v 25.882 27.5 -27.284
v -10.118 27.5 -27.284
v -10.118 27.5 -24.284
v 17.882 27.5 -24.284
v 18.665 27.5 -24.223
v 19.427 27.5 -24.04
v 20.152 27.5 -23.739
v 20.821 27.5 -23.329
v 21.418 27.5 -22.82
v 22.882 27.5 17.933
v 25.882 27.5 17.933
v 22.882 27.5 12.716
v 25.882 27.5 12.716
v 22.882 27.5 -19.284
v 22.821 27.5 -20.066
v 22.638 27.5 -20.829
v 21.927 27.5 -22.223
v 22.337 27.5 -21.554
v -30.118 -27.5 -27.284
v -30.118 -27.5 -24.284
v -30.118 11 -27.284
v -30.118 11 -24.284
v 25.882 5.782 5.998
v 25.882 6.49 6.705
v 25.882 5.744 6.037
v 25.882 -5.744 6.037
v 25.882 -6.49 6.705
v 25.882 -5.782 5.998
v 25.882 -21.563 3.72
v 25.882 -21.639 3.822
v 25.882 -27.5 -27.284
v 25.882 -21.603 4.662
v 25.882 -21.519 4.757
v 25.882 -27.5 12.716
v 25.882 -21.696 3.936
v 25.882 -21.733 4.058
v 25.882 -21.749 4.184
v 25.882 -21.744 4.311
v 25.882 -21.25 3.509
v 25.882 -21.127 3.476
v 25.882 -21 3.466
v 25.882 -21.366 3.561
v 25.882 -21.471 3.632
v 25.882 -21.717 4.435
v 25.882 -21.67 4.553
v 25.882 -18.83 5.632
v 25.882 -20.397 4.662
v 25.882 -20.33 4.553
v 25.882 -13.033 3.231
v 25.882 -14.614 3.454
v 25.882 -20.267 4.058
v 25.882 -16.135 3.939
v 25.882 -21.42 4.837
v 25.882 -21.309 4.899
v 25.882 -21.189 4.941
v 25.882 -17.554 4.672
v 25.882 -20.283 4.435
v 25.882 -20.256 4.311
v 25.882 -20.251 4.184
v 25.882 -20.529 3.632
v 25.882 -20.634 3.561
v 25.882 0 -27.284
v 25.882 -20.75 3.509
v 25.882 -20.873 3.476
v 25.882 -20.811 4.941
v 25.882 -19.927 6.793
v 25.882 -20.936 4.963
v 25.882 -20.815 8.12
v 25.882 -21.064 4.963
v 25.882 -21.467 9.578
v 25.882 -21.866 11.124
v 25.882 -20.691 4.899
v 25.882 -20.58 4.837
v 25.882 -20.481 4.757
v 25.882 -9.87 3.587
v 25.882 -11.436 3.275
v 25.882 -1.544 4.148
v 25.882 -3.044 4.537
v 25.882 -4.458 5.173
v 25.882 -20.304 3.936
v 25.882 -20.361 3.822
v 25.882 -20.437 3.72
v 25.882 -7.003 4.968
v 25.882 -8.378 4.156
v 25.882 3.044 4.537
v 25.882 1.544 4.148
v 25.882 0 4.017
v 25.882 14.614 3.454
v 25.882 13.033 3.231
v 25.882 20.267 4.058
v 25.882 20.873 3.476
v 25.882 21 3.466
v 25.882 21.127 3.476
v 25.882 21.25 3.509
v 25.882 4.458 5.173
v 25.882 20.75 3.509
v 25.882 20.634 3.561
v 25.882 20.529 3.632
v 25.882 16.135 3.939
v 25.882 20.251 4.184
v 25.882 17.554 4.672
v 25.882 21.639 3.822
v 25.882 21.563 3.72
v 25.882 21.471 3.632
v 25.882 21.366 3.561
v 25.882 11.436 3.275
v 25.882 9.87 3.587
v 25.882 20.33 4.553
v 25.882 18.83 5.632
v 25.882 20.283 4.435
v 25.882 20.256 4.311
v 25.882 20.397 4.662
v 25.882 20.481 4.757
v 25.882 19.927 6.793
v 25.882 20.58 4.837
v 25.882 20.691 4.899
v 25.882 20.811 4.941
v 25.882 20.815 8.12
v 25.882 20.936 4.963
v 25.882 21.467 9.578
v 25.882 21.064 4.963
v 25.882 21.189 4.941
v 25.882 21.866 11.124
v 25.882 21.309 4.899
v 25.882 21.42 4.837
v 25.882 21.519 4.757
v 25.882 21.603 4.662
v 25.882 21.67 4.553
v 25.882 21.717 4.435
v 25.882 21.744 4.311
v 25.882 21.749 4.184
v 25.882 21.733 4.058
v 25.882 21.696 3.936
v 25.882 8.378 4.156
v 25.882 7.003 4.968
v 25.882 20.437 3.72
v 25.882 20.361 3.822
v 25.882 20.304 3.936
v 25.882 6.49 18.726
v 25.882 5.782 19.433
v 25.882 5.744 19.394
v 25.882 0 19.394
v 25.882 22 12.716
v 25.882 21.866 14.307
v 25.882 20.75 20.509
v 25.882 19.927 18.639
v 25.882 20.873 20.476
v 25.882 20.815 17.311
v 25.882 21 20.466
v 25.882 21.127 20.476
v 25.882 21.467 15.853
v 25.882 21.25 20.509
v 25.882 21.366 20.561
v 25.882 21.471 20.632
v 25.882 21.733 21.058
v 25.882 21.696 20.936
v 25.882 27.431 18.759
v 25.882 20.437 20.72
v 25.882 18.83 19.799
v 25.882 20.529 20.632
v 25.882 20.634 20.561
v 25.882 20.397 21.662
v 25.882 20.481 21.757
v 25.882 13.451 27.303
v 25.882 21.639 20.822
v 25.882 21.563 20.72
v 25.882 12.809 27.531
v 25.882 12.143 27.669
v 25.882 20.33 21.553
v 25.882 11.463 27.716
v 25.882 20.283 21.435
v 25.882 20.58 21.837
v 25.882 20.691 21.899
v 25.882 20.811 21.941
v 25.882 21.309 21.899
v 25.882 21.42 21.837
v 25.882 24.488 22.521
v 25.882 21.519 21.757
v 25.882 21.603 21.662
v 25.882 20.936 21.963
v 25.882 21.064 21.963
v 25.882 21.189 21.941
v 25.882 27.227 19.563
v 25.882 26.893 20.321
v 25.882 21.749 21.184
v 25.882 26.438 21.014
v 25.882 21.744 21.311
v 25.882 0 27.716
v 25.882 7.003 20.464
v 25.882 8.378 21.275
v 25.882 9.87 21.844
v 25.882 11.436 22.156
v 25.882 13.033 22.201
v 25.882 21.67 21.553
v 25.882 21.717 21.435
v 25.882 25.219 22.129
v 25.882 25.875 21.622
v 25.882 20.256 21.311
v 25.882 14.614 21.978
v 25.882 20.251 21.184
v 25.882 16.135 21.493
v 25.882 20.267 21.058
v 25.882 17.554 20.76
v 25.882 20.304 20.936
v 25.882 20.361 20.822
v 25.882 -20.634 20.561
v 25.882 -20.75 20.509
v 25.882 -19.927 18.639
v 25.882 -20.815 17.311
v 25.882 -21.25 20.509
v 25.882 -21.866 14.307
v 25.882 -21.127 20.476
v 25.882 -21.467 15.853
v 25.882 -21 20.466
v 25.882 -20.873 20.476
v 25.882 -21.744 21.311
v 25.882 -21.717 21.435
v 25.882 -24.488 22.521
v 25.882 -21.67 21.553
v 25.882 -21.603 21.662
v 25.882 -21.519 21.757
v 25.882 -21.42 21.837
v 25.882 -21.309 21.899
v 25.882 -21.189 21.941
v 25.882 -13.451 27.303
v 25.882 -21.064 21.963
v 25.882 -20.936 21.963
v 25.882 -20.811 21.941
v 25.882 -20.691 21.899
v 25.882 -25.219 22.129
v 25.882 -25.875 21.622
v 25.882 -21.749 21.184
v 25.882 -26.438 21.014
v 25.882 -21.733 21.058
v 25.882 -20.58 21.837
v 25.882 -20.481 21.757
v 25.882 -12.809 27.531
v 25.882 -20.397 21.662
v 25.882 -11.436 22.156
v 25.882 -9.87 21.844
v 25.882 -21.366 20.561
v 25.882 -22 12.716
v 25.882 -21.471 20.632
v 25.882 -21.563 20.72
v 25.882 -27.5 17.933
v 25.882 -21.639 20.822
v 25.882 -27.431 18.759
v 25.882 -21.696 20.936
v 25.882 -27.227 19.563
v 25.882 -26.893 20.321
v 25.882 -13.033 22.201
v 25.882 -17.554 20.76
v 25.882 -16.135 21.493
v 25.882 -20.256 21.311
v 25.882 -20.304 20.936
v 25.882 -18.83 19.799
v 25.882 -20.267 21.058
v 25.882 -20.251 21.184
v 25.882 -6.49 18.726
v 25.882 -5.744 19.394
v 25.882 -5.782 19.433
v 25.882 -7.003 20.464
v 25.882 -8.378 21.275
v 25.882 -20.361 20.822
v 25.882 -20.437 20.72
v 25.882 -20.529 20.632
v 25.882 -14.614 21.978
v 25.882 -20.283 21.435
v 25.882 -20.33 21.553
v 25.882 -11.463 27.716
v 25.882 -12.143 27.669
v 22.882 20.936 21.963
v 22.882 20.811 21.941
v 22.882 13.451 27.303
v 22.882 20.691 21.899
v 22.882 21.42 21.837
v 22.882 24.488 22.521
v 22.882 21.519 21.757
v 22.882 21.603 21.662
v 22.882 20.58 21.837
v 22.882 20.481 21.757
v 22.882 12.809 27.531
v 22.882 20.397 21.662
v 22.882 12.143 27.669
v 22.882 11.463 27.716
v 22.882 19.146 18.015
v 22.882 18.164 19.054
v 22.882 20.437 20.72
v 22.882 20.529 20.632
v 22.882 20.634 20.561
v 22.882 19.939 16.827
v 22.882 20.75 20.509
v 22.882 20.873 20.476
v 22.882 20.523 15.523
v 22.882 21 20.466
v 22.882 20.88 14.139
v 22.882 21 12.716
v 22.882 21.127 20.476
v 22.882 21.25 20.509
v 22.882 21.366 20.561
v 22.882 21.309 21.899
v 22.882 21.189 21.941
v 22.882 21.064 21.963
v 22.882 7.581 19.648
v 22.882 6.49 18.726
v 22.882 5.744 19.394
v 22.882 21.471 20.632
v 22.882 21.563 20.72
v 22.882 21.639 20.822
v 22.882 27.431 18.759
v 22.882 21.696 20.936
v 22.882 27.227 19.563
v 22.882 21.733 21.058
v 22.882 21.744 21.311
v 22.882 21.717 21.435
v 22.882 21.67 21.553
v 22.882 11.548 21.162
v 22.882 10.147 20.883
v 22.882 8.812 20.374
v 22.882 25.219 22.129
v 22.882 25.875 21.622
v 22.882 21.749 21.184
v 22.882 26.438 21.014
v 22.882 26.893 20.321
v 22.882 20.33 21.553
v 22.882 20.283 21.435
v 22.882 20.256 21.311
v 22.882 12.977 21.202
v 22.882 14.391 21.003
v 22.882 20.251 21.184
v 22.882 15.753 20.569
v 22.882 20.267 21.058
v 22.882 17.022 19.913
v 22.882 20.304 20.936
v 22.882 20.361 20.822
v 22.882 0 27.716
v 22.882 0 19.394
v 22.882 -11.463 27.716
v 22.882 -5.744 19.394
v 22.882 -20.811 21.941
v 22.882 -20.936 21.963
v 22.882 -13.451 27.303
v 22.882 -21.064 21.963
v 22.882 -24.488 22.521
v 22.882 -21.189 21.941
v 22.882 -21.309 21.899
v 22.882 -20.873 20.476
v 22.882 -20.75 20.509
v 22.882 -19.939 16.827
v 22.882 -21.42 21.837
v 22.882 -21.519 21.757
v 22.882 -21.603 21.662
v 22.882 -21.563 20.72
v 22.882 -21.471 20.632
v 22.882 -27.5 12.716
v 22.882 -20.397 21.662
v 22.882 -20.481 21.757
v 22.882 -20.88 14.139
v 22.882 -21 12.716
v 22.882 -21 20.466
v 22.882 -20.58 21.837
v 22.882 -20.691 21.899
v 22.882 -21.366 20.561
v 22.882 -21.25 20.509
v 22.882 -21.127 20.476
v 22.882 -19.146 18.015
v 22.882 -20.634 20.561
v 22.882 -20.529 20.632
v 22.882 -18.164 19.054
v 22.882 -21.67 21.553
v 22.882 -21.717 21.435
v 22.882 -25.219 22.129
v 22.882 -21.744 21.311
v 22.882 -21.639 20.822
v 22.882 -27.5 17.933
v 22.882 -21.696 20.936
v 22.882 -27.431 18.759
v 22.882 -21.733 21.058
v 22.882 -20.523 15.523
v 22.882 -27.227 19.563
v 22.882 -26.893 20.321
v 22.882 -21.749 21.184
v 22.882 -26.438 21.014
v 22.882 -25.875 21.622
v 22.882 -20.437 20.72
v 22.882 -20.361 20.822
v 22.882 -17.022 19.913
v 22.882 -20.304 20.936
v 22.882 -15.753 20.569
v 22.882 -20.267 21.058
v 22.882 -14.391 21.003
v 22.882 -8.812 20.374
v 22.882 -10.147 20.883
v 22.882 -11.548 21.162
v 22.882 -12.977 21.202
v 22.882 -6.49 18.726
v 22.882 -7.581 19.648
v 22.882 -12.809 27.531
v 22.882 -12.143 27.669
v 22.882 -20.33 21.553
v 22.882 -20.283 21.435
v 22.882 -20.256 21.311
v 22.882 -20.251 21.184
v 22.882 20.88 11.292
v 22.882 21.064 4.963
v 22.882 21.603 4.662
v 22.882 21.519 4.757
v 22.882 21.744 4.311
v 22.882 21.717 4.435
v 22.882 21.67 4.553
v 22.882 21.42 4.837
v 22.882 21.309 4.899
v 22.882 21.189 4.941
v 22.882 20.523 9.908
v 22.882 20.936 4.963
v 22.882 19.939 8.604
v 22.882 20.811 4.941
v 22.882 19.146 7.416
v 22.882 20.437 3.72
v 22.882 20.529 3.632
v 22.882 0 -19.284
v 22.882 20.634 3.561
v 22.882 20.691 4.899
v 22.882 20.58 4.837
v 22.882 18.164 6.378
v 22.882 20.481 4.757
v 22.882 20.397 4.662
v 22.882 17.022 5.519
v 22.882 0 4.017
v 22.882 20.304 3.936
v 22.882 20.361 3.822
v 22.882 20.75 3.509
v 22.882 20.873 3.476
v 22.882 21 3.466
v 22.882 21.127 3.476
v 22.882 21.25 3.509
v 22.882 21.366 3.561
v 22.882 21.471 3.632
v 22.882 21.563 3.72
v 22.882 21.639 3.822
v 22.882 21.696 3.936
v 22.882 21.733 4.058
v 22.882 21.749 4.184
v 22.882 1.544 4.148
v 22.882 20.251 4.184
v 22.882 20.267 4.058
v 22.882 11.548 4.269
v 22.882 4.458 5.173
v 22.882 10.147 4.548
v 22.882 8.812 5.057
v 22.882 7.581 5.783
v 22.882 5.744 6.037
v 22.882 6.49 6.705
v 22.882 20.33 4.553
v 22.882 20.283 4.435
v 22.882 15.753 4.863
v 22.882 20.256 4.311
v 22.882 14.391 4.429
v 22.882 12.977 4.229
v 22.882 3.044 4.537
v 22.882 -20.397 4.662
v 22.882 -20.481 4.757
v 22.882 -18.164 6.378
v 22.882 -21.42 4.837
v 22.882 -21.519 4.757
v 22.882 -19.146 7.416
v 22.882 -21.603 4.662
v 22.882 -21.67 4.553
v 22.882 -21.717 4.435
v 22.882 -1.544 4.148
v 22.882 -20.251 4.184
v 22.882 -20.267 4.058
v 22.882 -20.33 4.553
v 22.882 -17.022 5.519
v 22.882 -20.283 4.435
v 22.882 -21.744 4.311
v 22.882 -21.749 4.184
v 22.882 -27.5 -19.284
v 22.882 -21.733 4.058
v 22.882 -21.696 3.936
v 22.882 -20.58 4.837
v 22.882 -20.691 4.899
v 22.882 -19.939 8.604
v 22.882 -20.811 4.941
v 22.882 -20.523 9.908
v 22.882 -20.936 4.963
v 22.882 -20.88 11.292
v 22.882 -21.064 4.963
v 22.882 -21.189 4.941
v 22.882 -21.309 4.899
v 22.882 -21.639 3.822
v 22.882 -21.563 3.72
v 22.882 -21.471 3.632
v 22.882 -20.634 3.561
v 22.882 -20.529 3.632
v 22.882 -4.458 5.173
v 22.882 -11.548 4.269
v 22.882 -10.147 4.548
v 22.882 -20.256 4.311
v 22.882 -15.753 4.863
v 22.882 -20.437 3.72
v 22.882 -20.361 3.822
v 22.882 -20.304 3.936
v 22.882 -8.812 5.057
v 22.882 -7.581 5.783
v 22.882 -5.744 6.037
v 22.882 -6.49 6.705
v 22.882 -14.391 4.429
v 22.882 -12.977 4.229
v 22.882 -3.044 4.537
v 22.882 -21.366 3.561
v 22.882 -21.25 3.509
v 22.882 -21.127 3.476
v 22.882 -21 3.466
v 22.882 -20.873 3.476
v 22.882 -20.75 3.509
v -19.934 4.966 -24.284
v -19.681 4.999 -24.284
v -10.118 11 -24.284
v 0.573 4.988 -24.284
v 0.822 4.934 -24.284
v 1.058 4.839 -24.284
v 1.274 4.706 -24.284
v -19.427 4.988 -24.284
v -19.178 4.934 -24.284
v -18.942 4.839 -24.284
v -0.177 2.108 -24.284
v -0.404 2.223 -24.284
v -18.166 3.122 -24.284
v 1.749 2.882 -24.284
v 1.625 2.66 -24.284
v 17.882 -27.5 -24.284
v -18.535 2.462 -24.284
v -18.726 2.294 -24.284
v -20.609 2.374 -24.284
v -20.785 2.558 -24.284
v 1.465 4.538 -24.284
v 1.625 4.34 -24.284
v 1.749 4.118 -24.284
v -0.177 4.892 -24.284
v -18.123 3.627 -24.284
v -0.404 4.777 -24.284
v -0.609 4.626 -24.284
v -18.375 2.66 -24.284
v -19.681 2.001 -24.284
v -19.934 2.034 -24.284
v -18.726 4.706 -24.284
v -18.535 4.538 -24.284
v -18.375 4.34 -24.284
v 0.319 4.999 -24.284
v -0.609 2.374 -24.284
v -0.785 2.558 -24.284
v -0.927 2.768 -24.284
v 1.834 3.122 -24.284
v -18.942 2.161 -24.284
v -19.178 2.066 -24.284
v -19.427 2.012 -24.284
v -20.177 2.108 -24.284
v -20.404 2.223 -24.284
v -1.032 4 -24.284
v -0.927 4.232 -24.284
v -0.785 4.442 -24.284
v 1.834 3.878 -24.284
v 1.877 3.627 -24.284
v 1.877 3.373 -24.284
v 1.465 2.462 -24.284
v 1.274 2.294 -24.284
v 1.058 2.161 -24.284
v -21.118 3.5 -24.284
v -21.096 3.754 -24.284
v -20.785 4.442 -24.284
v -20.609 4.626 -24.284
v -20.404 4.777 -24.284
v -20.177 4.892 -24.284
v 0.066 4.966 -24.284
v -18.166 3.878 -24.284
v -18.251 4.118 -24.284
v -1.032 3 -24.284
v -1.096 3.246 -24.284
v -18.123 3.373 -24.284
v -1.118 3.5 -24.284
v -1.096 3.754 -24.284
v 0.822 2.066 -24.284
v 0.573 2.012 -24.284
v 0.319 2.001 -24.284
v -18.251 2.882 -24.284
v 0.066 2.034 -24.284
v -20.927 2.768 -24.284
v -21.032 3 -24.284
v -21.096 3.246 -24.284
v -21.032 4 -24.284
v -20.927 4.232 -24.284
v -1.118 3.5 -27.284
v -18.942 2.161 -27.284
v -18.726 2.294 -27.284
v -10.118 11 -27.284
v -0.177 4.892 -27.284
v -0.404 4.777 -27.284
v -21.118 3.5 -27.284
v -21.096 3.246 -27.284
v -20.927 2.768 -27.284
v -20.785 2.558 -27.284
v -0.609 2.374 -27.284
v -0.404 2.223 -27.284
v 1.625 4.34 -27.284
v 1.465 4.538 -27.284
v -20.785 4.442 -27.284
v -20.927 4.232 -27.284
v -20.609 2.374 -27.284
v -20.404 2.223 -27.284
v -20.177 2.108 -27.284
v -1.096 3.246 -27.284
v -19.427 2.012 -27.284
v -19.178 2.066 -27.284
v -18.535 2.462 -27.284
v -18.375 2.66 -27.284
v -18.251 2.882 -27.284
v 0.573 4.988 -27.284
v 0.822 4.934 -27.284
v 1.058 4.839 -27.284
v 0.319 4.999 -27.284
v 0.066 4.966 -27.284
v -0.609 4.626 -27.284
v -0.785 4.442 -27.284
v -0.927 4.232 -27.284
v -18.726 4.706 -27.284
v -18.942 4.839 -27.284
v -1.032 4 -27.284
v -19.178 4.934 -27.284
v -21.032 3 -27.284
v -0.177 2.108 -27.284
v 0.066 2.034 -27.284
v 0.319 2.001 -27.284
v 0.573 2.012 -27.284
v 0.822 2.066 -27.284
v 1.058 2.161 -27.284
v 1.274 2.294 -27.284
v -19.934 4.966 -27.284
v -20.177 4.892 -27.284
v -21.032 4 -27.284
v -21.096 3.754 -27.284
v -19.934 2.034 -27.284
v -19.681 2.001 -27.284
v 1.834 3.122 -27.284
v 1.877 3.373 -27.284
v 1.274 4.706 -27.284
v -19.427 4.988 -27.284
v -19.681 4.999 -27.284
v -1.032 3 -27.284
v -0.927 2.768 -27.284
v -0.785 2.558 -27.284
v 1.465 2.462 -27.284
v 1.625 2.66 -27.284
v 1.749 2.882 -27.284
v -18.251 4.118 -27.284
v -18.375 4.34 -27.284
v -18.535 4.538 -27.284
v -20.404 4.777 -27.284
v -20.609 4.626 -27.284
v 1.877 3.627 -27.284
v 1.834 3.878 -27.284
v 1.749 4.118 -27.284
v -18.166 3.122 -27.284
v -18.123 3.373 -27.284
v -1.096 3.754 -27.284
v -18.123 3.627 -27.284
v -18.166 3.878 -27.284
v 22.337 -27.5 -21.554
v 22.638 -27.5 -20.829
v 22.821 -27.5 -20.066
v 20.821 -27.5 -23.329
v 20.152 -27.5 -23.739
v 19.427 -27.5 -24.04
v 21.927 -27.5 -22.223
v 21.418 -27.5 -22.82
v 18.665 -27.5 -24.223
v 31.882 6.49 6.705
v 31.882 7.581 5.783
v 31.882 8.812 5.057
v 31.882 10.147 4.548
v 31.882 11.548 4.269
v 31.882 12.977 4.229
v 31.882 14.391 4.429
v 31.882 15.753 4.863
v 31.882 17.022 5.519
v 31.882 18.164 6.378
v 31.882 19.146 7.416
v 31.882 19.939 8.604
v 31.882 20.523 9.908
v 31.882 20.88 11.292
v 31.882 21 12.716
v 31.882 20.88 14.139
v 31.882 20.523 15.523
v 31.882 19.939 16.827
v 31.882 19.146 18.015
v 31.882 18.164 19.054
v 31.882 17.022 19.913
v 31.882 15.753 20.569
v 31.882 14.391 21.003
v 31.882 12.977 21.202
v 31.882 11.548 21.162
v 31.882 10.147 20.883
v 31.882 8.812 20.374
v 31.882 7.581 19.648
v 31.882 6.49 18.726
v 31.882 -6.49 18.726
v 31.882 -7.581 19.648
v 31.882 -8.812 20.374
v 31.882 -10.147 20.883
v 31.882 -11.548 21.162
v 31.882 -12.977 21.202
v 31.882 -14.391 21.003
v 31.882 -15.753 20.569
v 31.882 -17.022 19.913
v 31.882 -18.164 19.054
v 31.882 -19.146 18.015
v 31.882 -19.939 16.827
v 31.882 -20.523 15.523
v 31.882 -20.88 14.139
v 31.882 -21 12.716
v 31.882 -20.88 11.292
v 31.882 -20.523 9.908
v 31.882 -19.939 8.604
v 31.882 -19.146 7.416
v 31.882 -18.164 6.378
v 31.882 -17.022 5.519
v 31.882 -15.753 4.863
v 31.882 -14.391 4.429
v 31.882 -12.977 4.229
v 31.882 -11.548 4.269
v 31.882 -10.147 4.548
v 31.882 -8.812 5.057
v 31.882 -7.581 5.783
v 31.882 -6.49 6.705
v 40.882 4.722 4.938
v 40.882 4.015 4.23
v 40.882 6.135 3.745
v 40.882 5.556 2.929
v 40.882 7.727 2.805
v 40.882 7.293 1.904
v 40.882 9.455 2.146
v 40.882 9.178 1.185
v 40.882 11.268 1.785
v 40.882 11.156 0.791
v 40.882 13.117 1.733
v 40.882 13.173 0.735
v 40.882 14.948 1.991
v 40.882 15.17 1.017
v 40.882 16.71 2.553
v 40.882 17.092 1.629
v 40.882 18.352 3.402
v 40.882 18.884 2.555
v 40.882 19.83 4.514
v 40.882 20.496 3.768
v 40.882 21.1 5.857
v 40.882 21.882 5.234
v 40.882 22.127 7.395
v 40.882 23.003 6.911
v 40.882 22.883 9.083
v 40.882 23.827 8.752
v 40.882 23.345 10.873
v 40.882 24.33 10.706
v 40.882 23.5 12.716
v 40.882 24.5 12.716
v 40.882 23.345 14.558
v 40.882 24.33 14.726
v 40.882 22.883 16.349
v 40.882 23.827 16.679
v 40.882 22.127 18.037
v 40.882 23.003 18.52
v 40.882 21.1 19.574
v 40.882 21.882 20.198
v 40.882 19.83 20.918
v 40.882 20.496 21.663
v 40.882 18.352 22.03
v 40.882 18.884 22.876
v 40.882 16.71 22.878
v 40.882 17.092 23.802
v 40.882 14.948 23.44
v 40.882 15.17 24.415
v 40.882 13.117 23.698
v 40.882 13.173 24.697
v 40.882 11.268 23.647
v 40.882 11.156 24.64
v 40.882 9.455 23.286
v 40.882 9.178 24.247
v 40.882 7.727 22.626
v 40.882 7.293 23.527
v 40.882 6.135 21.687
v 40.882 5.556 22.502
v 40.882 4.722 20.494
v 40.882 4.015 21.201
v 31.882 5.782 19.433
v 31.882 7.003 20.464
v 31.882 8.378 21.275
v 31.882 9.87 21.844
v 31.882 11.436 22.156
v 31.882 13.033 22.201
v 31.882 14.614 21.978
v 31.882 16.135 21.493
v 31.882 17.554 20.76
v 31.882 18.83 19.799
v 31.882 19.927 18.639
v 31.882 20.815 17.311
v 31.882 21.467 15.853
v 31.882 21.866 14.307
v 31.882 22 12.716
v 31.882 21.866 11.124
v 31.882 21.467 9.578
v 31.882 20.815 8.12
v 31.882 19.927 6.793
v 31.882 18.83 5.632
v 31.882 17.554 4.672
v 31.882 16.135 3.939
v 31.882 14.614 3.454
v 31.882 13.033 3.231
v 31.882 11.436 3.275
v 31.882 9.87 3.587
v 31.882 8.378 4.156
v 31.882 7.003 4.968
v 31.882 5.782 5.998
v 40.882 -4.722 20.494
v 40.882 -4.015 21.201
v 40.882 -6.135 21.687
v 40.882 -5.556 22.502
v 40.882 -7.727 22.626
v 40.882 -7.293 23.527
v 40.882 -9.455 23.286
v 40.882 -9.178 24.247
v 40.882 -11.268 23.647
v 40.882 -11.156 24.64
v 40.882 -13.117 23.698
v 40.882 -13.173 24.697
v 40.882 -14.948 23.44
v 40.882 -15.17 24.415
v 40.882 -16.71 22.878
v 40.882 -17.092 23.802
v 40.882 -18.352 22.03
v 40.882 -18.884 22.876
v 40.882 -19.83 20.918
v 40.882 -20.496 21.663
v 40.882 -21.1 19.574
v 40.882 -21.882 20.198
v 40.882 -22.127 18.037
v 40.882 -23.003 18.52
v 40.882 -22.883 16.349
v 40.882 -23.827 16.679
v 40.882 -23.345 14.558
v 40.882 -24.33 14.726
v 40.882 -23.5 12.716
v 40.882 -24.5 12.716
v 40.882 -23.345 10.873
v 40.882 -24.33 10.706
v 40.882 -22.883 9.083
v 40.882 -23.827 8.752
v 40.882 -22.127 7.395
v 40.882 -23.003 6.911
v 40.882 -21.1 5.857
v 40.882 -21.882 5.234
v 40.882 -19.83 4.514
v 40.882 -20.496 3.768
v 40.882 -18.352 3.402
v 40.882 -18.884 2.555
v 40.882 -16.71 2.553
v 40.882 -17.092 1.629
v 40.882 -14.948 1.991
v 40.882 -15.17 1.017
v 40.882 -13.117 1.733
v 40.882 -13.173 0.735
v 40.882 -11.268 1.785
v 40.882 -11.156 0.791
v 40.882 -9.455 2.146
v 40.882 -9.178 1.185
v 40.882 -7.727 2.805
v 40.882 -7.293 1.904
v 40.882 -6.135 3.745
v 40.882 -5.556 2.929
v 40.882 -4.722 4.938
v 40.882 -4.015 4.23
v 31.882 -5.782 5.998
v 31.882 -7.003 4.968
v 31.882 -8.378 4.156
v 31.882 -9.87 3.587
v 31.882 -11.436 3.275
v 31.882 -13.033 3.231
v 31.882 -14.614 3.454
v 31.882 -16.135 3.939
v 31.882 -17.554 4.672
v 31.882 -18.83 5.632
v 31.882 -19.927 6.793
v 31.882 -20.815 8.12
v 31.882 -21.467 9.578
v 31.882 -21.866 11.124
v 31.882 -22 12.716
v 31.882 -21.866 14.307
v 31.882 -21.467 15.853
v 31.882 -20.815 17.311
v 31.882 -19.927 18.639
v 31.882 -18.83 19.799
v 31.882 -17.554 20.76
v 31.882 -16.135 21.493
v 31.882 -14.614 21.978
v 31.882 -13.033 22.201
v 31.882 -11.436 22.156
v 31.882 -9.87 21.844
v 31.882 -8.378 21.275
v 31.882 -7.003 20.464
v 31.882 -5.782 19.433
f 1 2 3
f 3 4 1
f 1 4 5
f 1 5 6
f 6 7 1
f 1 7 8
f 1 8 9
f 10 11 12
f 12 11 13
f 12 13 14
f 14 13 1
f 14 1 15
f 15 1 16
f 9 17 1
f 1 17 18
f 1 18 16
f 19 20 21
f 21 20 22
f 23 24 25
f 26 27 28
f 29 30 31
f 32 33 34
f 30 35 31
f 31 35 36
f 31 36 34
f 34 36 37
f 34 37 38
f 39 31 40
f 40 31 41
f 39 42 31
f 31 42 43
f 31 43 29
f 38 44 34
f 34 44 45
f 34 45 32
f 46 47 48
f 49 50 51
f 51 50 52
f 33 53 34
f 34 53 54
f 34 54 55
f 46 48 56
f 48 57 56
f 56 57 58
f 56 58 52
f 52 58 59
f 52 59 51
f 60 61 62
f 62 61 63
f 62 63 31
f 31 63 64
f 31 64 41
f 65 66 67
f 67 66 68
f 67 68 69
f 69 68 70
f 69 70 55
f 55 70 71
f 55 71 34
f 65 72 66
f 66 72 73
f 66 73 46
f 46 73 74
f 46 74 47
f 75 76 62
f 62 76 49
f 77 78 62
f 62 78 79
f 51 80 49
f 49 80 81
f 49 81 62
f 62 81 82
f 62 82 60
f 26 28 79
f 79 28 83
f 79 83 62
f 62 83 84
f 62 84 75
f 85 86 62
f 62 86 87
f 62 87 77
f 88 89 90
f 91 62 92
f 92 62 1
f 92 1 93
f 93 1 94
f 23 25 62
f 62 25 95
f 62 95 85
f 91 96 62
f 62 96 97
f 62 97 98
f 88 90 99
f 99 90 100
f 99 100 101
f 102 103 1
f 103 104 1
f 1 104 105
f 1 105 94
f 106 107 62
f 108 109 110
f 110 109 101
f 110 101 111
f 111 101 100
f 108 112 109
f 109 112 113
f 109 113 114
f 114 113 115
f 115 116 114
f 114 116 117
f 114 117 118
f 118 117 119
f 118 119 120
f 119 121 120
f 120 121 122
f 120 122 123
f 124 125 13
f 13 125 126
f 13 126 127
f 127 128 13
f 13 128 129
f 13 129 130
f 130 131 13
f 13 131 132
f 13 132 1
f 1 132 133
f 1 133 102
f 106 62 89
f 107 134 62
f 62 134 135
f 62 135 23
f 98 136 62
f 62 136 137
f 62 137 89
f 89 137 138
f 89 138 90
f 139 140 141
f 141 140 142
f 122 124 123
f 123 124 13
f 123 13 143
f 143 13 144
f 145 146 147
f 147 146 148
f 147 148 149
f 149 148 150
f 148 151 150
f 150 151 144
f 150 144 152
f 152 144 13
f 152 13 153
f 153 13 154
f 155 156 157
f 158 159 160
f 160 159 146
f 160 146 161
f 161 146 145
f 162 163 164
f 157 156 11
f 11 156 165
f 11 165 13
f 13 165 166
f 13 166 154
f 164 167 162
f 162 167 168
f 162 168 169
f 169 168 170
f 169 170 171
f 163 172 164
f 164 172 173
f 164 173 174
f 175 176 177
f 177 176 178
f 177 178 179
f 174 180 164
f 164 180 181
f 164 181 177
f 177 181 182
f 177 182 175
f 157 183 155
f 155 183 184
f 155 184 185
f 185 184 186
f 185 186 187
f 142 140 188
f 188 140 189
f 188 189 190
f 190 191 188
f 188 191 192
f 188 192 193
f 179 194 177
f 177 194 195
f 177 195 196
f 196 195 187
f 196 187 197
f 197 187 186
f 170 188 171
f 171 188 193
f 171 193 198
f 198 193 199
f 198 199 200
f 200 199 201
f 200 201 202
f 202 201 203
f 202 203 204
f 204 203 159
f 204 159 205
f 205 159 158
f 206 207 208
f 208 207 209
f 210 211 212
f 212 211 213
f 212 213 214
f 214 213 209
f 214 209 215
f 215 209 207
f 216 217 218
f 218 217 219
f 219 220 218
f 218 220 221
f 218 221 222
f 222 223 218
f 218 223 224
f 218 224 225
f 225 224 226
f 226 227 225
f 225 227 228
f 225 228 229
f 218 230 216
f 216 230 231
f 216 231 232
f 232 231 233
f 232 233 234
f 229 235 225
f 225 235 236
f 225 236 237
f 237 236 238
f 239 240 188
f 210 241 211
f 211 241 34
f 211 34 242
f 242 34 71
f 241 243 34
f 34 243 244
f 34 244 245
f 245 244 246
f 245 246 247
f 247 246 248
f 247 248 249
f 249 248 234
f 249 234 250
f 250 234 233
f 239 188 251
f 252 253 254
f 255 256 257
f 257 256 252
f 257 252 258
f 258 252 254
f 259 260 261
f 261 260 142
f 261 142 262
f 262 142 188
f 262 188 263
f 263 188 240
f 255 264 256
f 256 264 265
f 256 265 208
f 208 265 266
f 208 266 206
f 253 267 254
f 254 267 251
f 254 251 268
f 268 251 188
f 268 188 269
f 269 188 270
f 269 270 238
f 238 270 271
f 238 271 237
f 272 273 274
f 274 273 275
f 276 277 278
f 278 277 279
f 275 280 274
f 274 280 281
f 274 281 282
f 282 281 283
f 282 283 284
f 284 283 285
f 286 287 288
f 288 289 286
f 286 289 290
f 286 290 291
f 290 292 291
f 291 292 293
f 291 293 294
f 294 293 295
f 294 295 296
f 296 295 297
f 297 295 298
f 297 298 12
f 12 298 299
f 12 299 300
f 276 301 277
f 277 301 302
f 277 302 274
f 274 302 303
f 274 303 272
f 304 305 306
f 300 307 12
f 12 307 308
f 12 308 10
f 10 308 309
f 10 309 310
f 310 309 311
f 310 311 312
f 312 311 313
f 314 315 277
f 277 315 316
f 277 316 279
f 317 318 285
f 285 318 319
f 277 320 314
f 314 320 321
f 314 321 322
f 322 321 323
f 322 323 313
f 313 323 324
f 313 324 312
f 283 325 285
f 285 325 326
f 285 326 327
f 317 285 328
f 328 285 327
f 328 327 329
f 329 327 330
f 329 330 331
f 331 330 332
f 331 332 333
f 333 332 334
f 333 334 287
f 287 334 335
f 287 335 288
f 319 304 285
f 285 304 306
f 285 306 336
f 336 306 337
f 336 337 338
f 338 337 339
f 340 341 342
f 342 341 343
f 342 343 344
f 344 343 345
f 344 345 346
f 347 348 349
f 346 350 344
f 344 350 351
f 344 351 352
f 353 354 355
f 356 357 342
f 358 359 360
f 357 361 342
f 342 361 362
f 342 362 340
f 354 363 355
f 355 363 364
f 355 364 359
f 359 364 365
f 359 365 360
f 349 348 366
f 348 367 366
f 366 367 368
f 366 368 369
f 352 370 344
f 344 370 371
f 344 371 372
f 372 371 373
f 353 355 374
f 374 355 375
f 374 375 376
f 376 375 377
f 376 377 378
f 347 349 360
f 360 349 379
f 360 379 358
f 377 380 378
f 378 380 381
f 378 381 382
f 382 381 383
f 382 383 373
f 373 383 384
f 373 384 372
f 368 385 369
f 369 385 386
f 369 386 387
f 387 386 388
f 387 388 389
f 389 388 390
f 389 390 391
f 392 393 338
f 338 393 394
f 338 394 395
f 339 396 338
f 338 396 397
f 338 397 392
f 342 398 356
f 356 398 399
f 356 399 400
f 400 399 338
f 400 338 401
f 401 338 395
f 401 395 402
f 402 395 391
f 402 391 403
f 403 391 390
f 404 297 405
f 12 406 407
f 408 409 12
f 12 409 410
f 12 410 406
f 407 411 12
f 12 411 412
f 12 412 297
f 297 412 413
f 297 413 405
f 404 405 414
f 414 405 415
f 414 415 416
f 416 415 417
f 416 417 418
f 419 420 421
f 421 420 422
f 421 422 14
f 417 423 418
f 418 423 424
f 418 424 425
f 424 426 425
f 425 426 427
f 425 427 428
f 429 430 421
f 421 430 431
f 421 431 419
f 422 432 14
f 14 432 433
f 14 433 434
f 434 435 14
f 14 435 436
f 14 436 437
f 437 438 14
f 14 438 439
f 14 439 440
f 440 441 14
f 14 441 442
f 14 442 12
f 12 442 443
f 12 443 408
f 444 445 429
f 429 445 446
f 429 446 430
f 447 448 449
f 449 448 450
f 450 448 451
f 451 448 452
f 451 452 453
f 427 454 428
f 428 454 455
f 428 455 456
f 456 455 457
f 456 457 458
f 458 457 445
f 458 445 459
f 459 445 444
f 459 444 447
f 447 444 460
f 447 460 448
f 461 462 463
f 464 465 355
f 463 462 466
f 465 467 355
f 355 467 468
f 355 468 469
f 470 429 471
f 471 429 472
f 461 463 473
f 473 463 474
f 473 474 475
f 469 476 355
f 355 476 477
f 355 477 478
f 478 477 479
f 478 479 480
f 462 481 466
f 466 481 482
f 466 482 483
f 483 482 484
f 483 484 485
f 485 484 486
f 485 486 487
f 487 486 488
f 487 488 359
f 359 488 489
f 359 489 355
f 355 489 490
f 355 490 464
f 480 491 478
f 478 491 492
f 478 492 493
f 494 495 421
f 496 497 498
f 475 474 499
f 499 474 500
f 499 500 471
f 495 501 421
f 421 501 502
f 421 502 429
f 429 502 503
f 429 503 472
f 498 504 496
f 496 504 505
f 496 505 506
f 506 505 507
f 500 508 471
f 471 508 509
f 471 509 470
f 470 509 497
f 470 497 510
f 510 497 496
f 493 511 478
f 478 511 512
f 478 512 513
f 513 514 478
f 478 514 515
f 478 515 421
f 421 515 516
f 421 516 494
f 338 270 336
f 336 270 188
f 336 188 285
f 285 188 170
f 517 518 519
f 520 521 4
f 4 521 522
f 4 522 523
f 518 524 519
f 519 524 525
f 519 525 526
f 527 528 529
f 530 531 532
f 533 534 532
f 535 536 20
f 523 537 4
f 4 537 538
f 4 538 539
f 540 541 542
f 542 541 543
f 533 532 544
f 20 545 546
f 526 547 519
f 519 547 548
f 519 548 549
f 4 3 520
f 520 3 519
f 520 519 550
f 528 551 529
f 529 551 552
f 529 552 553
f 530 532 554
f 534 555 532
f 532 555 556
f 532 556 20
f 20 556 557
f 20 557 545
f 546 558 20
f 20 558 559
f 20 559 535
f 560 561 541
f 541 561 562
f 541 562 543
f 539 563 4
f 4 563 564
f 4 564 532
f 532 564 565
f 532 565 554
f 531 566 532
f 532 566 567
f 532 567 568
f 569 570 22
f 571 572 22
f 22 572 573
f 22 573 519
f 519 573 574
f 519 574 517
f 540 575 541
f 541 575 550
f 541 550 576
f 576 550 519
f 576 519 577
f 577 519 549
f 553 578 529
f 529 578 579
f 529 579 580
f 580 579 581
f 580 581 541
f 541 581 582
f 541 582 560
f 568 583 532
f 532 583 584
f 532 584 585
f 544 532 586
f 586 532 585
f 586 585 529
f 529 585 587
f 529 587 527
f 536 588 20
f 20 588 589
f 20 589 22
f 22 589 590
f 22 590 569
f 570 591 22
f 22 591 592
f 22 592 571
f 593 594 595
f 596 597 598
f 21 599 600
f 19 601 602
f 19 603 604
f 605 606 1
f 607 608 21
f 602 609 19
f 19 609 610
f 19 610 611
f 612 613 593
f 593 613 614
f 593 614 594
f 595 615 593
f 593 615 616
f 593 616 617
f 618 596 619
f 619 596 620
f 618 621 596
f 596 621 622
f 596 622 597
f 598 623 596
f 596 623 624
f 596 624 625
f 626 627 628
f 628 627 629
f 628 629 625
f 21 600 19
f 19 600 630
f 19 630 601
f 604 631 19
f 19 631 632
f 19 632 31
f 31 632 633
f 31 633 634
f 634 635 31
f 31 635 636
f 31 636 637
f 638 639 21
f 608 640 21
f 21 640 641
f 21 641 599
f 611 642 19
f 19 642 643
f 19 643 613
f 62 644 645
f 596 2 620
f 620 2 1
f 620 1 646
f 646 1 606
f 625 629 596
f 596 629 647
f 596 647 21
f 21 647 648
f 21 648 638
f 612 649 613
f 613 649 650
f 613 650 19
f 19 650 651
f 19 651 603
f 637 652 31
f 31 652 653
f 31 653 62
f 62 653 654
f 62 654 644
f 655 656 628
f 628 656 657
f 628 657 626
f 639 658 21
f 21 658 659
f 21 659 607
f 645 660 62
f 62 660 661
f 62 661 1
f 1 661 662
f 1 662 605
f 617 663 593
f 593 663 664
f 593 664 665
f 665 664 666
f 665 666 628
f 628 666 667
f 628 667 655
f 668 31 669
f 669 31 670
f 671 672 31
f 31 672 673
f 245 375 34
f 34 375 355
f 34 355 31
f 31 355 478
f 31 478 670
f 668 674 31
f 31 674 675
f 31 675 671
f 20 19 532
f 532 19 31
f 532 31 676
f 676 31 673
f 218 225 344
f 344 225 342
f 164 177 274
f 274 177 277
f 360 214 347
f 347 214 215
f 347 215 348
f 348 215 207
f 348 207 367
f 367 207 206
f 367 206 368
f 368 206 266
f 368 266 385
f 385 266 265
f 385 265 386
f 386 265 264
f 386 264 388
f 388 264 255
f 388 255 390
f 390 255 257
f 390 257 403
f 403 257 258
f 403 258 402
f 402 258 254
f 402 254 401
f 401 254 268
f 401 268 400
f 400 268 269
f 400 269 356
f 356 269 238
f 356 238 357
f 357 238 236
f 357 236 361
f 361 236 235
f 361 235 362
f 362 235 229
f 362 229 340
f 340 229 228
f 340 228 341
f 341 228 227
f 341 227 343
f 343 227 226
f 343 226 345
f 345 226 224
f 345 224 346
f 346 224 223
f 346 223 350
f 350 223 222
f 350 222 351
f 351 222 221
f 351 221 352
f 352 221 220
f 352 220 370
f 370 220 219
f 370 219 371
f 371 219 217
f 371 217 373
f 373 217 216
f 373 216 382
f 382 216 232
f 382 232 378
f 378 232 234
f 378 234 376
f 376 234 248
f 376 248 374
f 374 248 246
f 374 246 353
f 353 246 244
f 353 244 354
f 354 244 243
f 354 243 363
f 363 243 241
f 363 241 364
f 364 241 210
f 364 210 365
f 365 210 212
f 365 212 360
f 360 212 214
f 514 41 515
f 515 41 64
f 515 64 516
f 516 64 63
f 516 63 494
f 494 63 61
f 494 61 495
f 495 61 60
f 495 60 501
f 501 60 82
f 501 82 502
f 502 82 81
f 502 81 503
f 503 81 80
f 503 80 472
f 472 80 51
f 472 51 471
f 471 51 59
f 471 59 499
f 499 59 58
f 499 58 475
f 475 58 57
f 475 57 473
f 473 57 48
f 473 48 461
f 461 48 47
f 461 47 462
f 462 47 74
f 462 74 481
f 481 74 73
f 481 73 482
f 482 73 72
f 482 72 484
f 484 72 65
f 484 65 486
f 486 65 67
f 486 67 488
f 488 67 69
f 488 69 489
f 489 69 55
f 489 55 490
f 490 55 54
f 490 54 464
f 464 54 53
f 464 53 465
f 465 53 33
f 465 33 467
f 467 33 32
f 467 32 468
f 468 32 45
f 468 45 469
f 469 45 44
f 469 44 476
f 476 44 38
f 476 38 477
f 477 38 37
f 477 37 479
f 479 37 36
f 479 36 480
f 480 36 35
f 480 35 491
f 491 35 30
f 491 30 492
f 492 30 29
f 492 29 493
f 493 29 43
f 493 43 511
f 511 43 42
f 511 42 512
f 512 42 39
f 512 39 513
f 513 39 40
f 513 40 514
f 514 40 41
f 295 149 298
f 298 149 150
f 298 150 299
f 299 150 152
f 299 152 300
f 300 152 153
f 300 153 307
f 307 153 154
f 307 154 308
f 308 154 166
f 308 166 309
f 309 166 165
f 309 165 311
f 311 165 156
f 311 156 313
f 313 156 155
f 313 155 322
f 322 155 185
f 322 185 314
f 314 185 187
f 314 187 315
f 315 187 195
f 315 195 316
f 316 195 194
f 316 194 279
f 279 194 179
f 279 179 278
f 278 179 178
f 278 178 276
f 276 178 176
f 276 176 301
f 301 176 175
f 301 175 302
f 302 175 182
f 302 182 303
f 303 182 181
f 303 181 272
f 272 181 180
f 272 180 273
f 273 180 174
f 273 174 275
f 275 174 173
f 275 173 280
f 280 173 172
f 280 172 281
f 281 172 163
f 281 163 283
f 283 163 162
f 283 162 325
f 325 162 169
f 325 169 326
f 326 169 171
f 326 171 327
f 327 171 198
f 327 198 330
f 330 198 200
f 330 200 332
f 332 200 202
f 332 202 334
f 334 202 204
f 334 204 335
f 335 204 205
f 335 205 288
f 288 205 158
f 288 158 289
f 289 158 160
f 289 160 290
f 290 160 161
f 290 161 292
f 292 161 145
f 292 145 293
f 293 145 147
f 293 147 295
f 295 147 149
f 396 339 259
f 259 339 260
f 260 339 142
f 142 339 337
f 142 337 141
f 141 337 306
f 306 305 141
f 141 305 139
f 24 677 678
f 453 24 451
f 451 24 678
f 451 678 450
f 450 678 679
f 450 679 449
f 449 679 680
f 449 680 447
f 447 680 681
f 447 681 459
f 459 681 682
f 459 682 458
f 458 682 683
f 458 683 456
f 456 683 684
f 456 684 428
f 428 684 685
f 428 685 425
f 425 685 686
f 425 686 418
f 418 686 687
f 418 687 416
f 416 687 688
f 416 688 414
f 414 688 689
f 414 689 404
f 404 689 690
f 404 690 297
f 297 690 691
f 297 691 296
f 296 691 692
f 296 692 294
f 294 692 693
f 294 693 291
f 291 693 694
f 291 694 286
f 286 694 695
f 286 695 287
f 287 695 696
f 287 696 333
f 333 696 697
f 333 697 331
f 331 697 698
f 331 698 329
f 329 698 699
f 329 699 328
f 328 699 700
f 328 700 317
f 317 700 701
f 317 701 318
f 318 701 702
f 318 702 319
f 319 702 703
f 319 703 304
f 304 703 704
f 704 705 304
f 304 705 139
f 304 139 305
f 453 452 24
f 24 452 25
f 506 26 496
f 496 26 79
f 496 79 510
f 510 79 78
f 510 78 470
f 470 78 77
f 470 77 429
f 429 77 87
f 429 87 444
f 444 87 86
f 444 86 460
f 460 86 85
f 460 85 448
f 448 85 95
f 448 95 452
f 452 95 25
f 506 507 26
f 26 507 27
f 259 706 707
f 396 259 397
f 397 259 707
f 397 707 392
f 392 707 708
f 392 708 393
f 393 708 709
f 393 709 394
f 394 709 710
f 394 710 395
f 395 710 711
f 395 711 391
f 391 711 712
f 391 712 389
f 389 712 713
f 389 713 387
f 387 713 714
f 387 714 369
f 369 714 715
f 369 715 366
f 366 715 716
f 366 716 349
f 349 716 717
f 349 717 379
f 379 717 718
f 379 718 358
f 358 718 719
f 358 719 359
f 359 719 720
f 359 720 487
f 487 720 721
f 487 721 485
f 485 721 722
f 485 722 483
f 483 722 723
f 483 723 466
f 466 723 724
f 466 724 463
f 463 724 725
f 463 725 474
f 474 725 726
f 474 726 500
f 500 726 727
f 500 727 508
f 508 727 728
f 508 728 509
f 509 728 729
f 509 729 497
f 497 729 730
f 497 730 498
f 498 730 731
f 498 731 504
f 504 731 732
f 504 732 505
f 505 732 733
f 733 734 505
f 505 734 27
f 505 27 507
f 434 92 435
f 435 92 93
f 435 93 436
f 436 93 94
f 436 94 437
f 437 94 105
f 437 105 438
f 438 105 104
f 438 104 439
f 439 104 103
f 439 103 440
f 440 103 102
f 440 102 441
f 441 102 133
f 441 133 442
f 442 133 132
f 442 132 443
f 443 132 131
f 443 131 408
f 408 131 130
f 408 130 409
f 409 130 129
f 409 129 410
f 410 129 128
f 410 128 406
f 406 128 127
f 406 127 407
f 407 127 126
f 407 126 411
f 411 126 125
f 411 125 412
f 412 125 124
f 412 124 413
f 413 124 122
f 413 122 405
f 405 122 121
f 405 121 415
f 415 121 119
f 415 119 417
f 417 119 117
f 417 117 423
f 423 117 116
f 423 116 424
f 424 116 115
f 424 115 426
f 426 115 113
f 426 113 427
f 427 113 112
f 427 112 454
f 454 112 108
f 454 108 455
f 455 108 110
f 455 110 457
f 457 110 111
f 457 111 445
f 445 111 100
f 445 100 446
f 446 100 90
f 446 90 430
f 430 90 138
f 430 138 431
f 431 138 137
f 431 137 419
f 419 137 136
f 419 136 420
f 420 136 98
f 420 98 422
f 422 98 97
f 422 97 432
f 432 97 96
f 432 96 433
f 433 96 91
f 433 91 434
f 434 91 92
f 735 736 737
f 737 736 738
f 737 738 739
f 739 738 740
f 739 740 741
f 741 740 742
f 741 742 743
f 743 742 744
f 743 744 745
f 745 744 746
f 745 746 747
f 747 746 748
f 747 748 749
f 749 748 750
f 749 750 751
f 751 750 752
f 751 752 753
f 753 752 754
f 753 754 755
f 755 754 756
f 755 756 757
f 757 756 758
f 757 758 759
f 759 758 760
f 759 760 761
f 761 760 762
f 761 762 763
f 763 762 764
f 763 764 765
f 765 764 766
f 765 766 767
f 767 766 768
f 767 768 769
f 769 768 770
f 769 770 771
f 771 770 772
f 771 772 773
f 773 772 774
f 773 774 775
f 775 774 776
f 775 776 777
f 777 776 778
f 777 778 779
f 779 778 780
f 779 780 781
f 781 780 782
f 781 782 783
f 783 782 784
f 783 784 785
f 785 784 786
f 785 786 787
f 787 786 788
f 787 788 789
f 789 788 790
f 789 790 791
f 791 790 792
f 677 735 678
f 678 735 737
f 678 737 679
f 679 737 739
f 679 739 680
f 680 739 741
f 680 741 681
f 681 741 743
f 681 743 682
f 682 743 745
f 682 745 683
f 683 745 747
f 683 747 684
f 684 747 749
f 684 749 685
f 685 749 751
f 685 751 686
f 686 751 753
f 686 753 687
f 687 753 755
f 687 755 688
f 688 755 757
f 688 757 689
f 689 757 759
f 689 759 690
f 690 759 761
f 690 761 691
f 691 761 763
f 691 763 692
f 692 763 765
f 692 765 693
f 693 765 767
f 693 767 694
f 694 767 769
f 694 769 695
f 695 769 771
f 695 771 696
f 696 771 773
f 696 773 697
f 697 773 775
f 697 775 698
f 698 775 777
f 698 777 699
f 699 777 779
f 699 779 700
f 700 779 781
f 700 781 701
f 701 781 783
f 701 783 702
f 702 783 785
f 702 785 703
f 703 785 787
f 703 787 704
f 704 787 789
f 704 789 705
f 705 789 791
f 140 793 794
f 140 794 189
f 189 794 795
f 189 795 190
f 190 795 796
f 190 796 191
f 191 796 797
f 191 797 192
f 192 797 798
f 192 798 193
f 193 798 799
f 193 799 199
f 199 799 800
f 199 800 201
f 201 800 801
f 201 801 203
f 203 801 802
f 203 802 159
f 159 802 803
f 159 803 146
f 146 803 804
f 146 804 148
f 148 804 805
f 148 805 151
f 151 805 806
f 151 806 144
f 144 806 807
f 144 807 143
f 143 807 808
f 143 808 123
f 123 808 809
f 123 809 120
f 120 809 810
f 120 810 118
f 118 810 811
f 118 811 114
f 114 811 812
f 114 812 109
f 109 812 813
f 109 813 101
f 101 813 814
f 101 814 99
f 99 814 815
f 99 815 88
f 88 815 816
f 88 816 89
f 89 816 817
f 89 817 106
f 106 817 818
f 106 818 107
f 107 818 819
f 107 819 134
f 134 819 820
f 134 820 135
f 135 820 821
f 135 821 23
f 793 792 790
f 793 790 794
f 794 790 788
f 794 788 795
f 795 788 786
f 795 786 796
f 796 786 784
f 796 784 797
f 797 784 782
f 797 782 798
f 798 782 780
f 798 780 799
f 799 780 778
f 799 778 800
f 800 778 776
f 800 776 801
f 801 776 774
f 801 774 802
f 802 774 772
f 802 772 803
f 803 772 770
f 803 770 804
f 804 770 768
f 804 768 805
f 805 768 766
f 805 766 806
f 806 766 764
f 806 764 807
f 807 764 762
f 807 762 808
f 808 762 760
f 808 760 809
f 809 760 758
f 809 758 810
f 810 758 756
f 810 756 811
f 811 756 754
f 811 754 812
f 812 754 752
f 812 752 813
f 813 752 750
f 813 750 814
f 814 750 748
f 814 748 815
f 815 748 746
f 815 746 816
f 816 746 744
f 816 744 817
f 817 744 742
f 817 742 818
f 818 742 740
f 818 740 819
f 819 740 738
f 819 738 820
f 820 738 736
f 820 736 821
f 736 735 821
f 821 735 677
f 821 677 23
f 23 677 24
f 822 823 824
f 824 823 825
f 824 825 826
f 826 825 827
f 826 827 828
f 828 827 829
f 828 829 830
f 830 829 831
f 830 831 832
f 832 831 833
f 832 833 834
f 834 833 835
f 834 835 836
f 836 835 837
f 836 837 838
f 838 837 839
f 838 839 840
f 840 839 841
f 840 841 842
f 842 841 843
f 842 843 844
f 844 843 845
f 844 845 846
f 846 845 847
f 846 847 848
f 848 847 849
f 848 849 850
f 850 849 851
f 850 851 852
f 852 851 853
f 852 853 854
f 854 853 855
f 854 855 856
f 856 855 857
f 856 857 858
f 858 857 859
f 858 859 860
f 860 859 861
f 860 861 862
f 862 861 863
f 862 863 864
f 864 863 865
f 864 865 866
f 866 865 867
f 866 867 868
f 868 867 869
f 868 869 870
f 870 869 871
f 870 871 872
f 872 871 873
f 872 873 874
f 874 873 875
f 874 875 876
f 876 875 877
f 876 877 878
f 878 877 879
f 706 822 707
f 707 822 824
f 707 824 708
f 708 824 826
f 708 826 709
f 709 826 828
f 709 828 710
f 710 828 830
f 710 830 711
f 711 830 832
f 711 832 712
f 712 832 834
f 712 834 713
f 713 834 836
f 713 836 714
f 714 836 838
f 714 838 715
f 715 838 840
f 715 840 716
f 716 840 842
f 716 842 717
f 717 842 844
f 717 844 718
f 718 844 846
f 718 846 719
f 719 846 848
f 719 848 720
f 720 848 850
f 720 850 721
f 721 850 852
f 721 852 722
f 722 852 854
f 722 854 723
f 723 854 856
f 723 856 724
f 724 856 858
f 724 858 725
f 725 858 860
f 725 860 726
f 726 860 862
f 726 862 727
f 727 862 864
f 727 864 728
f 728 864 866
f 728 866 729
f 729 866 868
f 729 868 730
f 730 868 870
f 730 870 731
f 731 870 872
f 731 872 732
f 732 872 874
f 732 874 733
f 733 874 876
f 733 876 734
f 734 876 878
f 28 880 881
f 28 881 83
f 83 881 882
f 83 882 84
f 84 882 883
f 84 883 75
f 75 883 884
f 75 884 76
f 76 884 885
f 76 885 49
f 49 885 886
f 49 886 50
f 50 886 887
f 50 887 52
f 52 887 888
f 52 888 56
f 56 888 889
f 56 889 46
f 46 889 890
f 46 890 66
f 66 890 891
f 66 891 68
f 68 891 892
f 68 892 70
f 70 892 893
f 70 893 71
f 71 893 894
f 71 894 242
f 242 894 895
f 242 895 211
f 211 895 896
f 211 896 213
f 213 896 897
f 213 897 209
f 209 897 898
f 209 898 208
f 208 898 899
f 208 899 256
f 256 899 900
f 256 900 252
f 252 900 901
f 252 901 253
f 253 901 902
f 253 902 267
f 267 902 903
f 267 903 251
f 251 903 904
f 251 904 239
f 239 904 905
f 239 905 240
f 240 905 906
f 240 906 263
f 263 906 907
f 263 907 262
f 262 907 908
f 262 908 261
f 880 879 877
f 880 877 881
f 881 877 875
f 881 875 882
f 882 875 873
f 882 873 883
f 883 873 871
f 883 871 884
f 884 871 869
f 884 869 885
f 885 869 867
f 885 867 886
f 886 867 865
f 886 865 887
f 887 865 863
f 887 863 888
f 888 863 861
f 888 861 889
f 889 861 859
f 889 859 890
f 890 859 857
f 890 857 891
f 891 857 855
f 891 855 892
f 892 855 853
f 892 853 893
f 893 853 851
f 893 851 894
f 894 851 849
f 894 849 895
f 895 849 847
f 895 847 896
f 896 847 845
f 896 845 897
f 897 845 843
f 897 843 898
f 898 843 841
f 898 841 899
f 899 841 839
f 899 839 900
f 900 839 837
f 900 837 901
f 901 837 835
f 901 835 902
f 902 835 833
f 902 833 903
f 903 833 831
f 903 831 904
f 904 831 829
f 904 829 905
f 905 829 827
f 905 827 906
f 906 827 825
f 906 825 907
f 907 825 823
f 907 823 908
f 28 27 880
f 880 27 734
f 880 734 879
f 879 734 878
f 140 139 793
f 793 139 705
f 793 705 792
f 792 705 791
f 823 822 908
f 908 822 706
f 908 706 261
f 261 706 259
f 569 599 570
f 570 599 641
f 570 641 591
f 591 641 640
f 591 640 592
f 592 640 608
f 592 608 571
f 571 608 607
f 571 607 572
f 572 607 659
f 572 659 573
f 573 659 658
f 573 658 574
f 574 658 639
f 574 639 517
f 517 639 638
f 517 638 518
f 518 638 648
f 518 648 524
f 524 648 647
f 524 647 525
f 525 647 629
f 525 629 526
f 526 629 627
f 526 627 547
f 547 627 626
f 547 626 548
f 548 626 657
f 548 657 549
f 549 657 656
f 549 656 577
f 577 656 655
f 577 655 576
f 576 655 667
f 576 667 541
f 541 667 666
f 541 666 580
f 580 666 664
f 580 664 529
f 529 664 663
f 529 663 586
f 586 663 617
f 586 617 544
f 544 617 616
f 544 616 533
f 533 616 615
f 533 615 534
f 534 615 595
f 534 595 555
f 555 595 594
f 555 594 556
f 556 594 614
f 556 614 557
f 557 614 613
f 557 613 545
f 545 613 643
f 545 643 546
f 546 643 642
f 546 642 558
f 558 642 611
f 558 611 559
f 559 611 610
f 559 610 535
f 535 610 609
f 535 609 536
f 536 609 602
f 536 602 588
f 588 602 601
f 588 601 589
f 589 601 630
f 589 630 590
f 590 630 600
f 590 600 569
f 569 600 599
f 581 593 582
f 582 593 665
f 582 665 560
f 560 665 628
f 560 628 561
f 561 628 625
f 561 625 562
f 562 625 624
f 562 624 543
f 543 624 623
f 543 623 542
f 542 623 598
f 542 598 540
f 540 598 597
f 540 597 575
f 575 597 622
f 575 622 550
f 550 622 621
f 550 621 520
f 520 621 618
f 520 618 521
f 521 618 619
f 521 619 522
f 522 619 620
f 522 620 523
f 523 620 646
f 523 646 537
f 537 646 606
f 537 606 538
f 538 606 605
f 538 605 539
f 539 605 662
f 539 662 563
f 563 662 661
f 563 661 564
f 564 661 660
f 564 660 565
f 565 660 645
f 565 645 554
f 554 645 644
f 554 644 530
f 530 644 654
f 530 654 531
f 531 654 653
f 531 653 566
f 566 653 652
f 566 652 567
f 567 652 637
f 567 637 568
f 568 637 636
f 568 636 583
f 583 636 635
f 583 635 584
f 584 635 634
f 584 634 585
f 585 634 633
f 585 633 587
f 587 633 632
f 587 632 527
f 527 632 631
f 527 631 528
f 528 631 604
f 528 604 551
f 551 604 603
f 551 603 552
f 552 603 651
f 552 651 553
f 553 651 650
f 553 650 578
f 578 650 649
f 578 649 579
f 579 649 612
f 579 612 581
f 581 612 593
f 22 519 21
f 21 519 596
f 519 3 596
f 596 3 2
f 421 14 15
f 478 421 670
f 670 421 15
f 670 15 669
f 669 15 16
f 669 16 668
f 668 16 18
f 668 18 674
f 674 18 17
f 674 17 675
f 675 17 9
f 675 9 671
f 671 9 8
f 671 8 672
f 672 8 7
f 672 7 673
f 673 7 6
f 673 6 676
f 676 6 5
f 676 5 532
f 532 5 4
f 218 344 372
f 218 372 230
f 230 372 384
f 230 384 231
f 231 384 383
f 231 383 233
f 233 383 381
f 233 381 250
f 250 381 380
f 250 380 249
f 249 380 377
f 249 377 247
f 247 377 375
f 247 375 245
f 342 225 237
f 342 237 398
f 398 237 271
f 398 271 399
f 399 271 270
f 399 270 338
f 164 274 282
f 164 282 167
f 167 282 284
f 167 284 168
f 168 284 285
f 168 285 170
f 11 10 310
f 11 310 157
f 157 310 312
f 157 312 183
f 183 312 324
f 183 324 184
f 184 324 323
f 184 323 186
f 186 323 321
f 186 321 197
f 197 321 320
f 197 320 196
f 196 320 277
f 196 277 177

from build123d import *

# Parameters (mm, degrees)
EXTRUDE_1_DEPTH       = 27.5
SKETCH_3_R            = 0.75
CUT_EXTRUDE_3_DEPTH   = 3
REVOLVE_1_ANGLE       = 135
MIRROR_3_COPY_1_ANGLE = 135
MIRROR_3_COPY_2_ANGLE = 135
SKETCH_2_W            = 20
SKETCH_2_H            = 16.5
SKETCH_2_R            = 1.5
CUT_EXTRUDE_4_DEPTH   = 3
FILLET_1_R            = 5
FILLET_2_R            = 5


with BuildPart() as part:
    # 草图1 → 凸台-拉伸1 (new, symmetric)
    with BuildSketch(Plane(origin=(0, 0, 0), x_dir=(1, 0, 0), z_dir=(0, 1, 0))):
        Polygon((-30.117647059, 27.284313725), (25.882352941, 27.284313725), (25.882352941, -27.715686275), (22.882352941, -27.715686275), (22.882352941, 24.284313725), (-30.117647059, 24.284313725), align=None)
    extrude(amount=EXTRUDE_1_DEPTH, both=True)

    # 草图3 → 切除-拉伸3 (cut)
    with BuildSketch(Plane(origin=(25.882352941, 0, 0), x_dir=(0, 0, -1), z_dir=(1, 0, 0))):
        with BuildLine():
            Line((-12.715686275, 12.5), (-6.705278634, 6.48959236))
            ThreePointArc((-6.705278634, 6.48959236), (-4.862710248, 9.247190825), (-4.215686275, 12.5))
            ThreePointArc((-4.215686275, 12.5), (-6.705278634, 18.51040764), (-12.715686275, 21))
            Line((-12.715686275, 21), (-12.715686275, 12.5))
        make_face()
        with BuildLine():
            ThreePointArc((-12.715686275, 4), (-9.462877099, 4.647023974), (-6.705278634, 6.48959236))
            Line((-6.705278634, 6.48959236), (-12.715686275, 12.5))
            Line((-12.715686275, 12.5), (-12.715686275, 4))
        make_face()
        with BuildLine():
            Line((-12.715686275, 12.5), (-18.726093915, 6.48959236))
            ThreePointArc((-18.726093915, 6.48959236), (-15.96849545, 4.647023974), (-12.715686275, 4))
            Line((-12.715686275, 4), (-12.715686275, 12.5))
        make_face()
        with BuildLine():
            ThreePointArc((-12.715686275, 21), (-20.568662301, 15.752809175), (-18.726093915, 6.48959236))
            Line((-18.726093915, 6.48959236), (-12.715686275, 12.5))
            Line((-12.715686275, 12.5), (-12.715686275, 21))
        make_face()
        with BuildLine():
            Line((-12.715686275, 3), (-12.715686275, 0))
            Line((-12.715686275, 0), (-4.017201465, 0))
            ThreePointArc((-4.017201465, 0), (-4.536839235, 3.044356098), (-6.036908978, 5.743970558))
            ThreePointArc((-6.036908978, 5.743970558), (-9.105442495, 3.712728532), (-12.715686275, 3))
        make_face()
        with BuildLine():
            Line((-4.017201465, 0), (-12.715686275, 0))
            Line((-12.715686275, 0), (-12.715686275, -3))
            ThreePointArc((-12.715686275, -3), (-9.105442495, -3.712728532), (-6.036908978, -5.743970558))
            ThreePointArc((-6.036908978, -5.743970558), (-4.536839235, -3.044356098), (-4.017201465, 0))
        make_face()
        with BuildLine():
            Line((-19.394463571, 5.743970558), (-19.394463571, 0))
            Line((-19.394463571, 0), (-12.715686275, 0))
            Line((-12.715686275, 0), (-12.715686275, 3))
            ThreePointArc((-12.715686275, 3), (-16.325930054, 3.712728532), (-19.394463571, 5.743970558))
        make_face()
        with BuildLine():
            Line((-12.715686275, 0), (-19.394463571, 0))
            Line((-19.394463571, 0), (-19.394463571, -5.743970558))
            ThreePointArc((-19.394463571, -5.743970558), (-16.325930054, -3.712728532), (-12.715686275, -3))
            Line((-12.715686275, -3), (-12.715686275, 0))
        make_face()
        with BuildLine():
            Line((-6.705278634, -6.48959236), (-12.715686275, -12.5))
            Line((-12.715686275, -12.5), (-12.715686275, -21))
            ThreePointArc((-12.715686275, -21), (-6.705278634, -18.51040764), (-4.215686275, -12.5))
            ThreePointArc((-4.215686275, -12.5), (-4.862710248, -9.247190825), (-6.705278634, -6.48959236))
        make_face()
        with BuildLine():
            Line((-12.715686275, -4), (-12.715686275, -12.5))
            Line((-12.715686275, -12.5), (-6.705278634, -6.48959236))
            ThreePointArc((-6.705278634, -6.48959236), (-9.462877099, -4.647023974), (-12.715686275, -4))
        make_face()
        with BuildLine():
            ThreePointArc((-12.715686275, -4), (-15.96849545, -4.647023974), (-18.726093915, -6.48959236))
            Line((-18.726093915, -6.48959236), (-12.715686275, -12.5))
            Line((-12.715686275, -12.5), (-12.715686275, -4))
        make_face()
        with BuildLine():
            Line((-12.715686275, -12.5), (-18.726093915, -6.48959236))
            ThreePointArc((-18.726093915, -6.48959236), (-20.568662301, -15.752809175), (-12.715686275, -21))
            Line((-12.715686275, -21), (-12.715686275, -12.5))
        make_face()
        with Locations((-21.215686275, -21)):
            Circle(SKETCH_3_R)
        with Locations((-4.215686275, -21)):
            Circle(SKETCH_3_R)
        with Locations((-21.215686275, 21)):
            Circle(SKETCH_3_R)
        with Locations((-4.215686275, 21)):
            Circle(SKETCH_3_R)
        with BuildLine():
            ThreePointArc((-12.715686275, -3), (-16.325930054, -3.712728532), (-19.394463571, -5.743970558))
            Line((-19.394463571, -5.743970558), (-18.726093915, -6.48959236))
            ThreePointArc((-18.726093915, -6.48959236), (-15.96849545, -4.647023974), (-12.715686275, -4))
            ThreePointArc((-12.715686275, -4), (-9.462877099, -4.647023974), (-6.705278634, -6.48959236))
            Line((-6.705278634, -6.48959236), (-6.036908978, -5.743970558))
            ThreePointArc((-6.036908978, -5.743970558), (-9.105442495, -3.712728532), (-12.715686275, -3))
        make_face()
        with BuildLine():
            Line((-18.726093915, 6.48959236), (-19.394463571, 5.743970558))
            ThreePointArc((-19.394463571, 5.743970558), (-16.325930054, 3.712728532), (-12.715686275, 3))
            ThreePointArc((-12.715686275, 3), (-9.105442495, 3.712728532), (-6.036908978, 5.743970558))
            Line((-6.036908978, 5.743970558), (-6.705278634, 6.48959236))
            ThreePointArc((-6.705278634, 6.48959236), (-9.462877099, 4.647023974), (-12.715686275, 4))
            ThreePointArc((-12.715686275, 4), (-15.96849545, 4.647023974), (-18.726093915, 6.48959236))
        make_face()
        Polygon((-21.215686275, 27.5), (-23.783279652, 27.5), (-27.715686275, 27.5), (-27.715686275, 23.567593377), (-27.715686275, 20.249825378), (-27.715686275, 12.5), align=None)
        Polygon((-21.215686275, -27.5), (-27.715686275, -12.5), (-27.715686275, -20.249825378), (-27.715686275, -23.567593377), (-27.715686275, -27.5), (-23.783279652, -27.5), align=None)
    extrude(amount=-CUT_EXTRUDE_3_DEPTH, mode=Mode.SUBTRACT)

    # 草图5 → 旋转1 (revolve)
    with BuildSketch(Plane(origin=(0, 0, 12.715686275), x_dir=(0, -1, 0), z_dir=(0, 0, 1))):
        Polygon((-22, 25.882352941), (-21, 25.882352941), (-21, 31.882352941), (-23.5, 40.882352941), (-24.5, 40.882352941), (-22, 31.882352941), align=None)
    revolve_1 = revolve(axis=Axis((32.882352941, 12.5, 12.715686275), (-1, 0, 0)), revolution_arc=REVOLVE_1_ANGLE)

    # 镜向1: 旋转1 across plane
    add(revolve_1.mirror(Plane.ZX))

    # 镜向2: 旋转1 across plane
    add(revolve_1.mirror(Plane.XY.offset(12.715686275)))

    # 镜向3 copy 1 sketch → 镜向3 copy 1 (revolve)
    with BuildSketch(Plane.YX.offset(-12.715686275)):
        Polygon((-22, 25.882352941), (-21, 25.882352941), (-21, 31.882352941), (-23.5, 40.882352941), (-24.5, 40.882352941), (-22, 31.882352941), align=None)
    revolve(axis=Axis((32.882352941, -12.5, 12.715686275), (-1, 0, 0)), revolution_arc=MIRROR_3_COPY_1_ANGLE)

    # 镜向3 copy 2 sketch → 镜向3 copy 2 (revolve)
    with BuildSketch(Plane(origin=(0, 0, 12.715686275), x_dir=(0, -1, 0), z_dir=(0, 0, -1))):
        Polygon((-22, -25.882352941), (-21, -25.882352941), (-21, -31.882352941), (-23.5, -40.882352941), (-24.5, -40.882352941), (-22, -31.882352941), align=None)
    revolve(axis=Axis((32.882352941, 12.5, 12.715686275), (1, 0, 0)), revolution_arc=MIRROR_3_COPY_2_ANGLE)

    # 草图2 → 切除-拉伸4 (cut)
    with BuildSketch(Plane(origin=(0, 0, -27.284313725), x_dir=(-1, 0, 0), z_dir=(0, 0, -1))):
        with Locations((20.117647059, 19.25)):
            Rectangle(SKETCH_2_W, SKETCH_2_H)
        with Locations((-0.382352941, 3.5)):
            Circle(SKETCH_2_R)
        with Locations((19.617647059, 3.5)):
            Circle(SKETCH_2_R)
    extrude(amount=-CUT_EXTRUDE_4_DEPTH, mode=Mode.SUBTRACT)

    # 圆角1
    fillet_1_edges = [part.edges().sort_by_distance(p)[0] for p in [
        (22.882352941, 0, -24.284313725),
    ]]
    fillet(fillet_1_edges, radius=FILLET_1_R)

    # 圆角2
    fillet_2_edges = [part.edges().sort_by_distance(p)[0] for p in [
        (24.382352941, 12.5, 27.715686275),
        (24.382352941, 27.5, 21.215686275),
        (24.382352941, -12.5, 27.715686275),
        (24.382352941, -27.5, 21.215686275),
    ]]
    fillet(fillet_2_edges, radius=FILLET_2_R)


solid = part.part
